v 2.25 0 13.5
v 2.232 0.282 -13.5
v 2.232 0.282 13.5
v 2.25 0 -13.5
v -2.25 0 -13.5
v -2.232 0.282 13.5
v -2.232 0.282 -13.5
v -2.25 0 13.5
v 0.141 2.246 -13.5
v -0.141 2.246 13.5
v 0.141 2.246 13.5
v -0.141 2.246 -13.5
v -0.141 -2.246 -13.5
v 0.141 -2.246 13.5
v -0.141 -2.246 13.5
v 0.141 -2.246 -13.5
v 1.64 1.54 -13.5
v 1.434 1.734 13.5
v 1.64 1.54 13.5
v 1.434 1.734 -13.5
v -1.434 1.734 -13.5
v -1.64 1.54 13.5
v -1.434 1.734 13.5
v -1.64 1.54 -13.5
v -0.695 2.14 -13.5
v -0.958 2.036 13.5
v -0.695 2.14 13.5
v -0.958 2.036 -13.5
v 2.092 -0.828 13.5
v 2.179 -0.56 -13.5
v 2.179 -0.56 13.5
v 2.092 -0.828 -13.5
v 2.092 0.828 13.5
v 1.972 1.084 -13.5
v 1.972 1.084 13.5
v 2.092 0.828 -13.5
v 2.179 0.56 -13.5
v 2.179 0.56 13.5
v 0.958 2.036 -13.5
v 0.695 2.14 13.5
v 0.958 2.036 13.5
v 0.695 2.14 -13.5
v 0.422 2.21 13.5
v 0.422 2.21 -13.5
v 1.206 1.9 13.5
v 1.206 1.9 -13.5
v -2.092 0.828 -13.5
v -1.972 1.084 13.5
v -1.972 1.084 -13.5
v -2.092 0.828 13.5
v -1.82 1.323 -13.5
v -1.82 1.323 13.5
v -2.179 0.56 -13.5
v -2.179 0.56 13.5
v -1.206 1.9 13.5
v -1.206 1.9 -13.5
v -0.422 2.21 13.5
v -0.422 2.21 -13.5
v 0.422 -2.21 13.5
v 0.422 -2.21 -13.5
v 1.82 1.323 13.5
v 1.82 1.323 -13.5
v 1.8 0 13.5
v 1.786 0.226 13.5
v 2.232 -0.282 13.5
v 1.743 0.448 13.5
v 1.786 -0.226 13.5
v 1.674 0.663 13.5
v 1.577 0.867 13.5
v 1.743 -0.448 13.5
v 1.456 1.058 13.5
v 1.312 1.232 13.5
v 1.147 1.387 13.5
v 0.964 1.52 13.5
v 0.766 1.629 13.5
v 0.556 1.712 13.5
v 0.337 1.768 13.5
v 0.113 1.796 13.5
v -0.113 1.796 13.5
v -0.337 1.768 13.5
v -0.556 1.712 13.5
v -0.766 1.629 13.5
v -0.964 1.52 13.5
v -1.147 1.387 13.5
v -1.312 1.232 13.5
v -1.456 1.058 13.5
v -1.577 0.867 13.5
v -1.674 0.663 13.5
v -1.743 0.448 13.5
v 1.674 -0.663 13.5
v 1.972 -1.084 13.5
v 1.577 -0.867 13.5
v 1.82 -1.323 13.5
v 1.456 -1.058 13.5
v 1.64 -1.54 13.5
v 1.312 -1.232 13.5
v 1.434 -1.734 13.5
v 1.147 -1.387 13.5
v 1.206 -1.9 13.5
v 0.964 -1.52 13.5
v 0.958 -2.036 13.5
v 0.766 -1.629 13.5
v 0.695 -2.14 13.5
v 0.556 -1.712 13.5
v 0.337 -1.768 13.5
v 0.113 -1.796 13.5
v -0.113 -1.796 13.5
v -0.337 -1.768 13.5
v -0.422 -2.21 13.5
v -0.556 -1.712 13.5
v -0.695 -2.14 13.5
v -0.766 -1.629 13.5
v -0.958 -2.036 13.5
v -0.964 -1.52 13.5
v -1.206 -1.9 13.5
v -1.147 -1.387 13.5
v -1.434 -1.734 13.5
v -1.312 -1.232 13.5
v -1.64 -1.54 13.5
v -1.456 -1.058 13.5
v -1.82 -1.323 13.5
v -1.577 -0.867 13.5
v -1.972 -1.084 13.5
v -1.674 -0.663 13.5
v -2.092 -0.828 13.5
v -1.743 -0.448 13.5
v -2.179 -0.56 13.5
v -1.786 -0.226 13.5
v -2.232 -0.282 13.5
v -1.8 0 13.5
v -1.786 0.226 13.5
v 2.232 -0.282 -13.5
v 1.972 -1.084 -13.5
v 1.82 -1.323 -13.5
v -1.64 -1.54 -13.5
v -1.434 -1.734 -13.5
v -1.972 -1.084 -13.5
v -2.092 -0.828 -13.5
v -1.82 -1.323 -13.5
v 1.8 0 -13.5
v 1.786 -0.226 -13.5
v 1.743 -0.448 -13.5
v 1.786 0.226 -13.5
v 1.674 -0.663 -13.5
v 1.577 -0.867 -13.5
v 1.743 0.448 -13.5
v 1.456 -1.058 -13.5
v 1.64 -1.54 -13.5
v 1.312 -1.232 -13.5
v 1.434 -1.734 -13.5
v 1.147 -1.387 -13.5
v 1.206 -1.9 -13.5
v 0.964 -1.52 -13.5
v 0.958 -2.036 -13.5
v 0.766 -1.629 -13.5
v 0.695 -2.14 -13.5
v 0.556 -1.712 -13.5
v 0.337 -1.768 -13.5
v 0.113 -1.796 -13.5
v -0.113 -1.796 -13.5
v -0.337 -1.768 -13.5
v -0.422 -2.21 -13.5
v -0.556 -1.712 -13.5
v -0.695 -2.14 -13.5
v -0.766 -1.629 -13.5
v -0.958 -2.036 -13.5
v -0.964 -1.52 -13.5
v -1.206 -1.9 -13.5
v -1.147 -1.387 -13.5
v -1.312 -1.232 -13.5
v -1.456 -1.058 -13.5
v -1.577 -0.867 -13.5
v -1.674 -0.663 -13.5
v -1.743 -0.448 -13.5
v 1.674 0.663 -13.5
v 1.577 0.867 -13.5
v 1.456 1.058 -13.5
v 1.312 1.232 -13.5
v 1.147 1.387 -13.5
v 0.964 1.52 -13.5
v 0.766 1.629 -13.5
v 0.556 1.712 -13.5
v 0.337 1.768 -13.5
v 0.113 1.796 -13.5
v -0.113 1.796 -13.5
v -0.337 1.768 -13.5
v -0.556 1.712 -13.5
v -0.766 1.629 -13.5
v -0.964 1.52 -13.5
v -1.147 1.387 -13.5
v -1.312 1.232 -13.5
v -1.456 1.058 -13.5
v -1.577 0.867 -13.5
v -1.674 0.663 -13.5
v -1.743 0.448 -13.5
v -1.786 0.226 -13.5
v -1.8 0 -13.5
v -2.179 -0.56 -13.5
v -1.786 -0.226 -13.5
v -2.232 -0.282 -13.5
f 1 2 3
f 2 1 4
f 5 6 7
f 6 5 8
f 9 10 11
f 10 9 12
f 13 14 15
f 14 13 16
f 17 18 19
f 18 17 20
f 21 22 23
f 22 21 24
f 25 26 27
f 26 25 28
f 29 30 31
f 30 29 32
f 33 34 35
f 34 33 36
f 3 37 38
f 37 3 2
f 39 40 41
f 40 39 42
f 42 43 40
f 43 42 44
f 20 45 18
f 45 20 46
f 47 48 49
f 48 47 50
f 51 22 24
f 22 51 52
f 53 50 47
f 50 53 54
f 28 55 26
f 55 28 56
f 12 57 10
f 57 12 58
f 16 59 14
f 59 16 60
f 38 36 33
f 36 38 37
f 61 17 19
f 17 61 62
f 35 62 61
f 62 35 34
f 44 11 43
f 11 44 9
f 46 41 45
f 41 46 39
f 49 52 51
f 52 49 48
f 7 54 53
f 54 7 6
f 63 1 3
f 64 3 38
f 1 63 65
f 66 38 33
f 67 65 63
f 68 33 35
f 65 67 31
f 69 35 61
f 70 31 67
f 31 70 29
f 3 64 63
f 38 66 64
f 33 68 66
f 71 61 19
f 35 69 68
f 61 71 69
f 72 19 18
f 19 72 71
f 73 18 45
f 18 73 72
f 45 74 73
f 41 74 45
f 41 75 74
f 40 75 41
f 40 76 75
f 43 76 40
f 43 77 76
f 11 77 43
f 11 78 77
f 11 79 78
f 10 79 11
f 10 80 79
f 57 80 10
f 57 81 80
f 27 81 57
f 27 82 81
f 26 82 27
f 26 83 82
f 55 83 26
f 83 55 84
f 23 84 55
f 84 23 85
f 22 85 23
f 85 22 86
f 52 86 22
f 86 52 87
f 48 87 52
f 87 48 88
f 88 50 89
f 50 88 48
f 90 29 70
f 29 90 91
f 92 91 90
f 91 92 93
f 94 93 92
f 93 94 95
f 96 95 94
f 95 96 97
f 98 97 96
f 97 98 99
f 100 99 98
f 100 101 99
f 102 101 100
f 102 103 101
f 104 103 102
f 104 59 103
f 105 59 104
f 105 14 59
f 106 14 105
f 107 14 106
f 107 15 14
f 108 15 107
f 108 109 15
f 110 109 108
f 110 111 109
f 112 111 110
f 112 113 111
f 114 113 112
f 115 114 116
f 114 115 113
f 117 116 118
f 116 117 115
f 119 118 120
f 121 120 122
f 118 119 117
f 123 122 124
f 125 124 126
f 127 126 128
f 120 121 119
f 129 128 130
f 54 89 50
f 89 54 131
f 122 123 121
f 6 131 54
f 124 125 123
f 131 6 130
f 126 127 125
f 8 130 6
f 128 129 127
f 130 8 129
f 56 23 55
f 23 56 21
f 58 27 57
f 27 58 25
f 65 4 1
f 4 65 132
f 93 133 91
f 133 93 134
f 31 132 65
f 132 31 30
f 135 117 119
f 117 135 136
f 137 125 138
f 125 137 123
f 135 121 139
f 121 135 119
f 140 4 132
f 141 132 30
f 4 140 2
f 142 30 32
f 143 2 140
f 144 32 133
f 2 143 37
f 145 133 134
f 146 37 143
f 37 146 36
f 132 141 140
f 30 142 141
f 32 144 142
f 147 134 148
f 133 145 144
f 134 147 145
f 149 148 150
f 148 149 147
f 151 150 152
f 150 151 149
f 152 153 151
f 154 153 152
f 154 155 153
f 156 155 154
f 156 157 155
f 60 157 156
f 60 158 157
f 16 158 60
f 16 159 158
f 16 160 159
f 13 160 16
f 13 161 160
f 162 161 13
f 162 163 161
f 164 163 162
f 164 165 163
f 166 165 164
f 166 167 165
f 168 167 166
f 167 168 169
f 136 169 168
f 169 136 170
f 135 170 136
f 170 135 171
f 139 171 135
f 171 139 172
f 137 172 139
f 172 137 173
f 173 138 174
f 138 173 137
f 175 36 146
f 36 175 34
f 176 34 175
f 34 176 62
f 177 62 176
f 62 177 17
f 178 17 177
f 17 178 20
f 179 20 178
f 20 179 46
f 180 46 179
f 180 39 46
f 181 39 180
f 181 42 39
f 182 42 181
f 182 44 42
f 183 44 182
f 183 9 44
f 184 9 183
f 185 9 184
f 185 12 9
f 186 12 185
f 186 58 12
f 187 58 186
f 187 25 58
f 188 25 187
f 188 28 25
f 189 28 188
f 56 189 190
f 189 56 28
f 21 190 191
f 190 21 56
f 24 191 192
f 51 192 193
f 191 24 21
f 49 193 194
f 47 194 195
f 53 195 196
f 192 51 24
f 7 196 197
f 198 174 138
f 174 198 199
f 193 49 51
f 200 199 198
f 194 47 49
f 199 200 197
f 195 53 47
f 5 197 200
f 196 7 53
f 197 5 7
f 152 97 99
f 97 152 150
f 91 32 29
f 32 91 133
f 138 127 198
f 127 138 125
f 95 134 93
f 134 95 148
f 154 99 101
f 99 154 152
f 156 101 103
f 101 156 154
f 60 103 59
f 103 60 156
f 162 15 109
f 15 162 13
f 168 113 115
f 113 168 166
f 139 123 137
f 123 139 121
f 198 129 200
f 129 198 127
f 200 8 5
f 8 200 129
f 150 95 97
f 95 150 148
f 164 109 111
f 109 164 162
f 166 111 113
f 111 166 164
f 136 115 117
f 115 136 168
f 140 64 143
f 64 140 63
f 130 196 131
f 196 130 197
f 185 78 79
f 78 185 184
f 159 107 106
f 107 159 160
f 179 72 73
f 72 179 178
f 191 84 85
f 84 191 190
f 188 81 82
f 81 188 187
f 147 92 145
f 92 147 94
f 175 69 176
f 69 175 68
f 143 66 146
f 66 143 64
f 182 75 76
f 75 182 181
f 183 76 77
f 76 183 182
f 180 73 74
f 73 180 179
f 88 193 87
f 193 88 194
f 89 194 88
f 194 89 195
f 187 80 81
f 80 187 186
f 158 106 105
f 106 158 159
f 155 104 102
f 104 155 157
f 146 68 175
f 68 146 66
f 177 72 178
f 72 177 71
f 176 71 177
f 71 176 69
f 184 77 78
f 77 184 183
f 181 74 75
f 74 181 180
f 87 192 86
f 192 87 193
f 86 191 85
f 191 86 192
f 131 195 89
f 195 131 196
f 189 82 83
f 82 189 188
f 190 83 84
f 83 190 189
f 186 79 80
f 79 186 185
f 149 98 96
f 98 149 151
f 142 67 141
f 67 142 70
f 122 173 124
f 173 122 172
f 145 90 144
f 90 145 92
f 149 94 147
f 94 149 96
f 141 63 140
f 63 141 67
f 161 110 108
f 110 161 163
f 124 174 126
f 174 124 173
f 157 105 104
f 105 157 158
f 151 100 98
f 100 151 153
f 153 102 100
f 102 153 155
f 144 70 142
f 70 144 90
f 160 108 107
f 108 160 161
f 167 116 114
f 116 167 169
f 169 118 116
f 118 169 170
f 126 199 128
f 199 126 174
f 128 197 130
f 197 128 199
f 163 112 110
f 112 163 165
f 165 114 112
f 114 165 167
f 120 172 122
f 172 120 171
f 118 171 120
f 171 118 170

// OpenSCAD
$fn = 50;


difference() {
	union() {
		translate(v = [0, 0, -13.5000000000]) {
			cylinder(h = 27, r = 2.2500000000);
		}
	}
	union() {
		translate(v = [0, 0, -100.0000000000]) {
			cylinder(h = 200, r = 1.8000000000);
		}
	}
}
